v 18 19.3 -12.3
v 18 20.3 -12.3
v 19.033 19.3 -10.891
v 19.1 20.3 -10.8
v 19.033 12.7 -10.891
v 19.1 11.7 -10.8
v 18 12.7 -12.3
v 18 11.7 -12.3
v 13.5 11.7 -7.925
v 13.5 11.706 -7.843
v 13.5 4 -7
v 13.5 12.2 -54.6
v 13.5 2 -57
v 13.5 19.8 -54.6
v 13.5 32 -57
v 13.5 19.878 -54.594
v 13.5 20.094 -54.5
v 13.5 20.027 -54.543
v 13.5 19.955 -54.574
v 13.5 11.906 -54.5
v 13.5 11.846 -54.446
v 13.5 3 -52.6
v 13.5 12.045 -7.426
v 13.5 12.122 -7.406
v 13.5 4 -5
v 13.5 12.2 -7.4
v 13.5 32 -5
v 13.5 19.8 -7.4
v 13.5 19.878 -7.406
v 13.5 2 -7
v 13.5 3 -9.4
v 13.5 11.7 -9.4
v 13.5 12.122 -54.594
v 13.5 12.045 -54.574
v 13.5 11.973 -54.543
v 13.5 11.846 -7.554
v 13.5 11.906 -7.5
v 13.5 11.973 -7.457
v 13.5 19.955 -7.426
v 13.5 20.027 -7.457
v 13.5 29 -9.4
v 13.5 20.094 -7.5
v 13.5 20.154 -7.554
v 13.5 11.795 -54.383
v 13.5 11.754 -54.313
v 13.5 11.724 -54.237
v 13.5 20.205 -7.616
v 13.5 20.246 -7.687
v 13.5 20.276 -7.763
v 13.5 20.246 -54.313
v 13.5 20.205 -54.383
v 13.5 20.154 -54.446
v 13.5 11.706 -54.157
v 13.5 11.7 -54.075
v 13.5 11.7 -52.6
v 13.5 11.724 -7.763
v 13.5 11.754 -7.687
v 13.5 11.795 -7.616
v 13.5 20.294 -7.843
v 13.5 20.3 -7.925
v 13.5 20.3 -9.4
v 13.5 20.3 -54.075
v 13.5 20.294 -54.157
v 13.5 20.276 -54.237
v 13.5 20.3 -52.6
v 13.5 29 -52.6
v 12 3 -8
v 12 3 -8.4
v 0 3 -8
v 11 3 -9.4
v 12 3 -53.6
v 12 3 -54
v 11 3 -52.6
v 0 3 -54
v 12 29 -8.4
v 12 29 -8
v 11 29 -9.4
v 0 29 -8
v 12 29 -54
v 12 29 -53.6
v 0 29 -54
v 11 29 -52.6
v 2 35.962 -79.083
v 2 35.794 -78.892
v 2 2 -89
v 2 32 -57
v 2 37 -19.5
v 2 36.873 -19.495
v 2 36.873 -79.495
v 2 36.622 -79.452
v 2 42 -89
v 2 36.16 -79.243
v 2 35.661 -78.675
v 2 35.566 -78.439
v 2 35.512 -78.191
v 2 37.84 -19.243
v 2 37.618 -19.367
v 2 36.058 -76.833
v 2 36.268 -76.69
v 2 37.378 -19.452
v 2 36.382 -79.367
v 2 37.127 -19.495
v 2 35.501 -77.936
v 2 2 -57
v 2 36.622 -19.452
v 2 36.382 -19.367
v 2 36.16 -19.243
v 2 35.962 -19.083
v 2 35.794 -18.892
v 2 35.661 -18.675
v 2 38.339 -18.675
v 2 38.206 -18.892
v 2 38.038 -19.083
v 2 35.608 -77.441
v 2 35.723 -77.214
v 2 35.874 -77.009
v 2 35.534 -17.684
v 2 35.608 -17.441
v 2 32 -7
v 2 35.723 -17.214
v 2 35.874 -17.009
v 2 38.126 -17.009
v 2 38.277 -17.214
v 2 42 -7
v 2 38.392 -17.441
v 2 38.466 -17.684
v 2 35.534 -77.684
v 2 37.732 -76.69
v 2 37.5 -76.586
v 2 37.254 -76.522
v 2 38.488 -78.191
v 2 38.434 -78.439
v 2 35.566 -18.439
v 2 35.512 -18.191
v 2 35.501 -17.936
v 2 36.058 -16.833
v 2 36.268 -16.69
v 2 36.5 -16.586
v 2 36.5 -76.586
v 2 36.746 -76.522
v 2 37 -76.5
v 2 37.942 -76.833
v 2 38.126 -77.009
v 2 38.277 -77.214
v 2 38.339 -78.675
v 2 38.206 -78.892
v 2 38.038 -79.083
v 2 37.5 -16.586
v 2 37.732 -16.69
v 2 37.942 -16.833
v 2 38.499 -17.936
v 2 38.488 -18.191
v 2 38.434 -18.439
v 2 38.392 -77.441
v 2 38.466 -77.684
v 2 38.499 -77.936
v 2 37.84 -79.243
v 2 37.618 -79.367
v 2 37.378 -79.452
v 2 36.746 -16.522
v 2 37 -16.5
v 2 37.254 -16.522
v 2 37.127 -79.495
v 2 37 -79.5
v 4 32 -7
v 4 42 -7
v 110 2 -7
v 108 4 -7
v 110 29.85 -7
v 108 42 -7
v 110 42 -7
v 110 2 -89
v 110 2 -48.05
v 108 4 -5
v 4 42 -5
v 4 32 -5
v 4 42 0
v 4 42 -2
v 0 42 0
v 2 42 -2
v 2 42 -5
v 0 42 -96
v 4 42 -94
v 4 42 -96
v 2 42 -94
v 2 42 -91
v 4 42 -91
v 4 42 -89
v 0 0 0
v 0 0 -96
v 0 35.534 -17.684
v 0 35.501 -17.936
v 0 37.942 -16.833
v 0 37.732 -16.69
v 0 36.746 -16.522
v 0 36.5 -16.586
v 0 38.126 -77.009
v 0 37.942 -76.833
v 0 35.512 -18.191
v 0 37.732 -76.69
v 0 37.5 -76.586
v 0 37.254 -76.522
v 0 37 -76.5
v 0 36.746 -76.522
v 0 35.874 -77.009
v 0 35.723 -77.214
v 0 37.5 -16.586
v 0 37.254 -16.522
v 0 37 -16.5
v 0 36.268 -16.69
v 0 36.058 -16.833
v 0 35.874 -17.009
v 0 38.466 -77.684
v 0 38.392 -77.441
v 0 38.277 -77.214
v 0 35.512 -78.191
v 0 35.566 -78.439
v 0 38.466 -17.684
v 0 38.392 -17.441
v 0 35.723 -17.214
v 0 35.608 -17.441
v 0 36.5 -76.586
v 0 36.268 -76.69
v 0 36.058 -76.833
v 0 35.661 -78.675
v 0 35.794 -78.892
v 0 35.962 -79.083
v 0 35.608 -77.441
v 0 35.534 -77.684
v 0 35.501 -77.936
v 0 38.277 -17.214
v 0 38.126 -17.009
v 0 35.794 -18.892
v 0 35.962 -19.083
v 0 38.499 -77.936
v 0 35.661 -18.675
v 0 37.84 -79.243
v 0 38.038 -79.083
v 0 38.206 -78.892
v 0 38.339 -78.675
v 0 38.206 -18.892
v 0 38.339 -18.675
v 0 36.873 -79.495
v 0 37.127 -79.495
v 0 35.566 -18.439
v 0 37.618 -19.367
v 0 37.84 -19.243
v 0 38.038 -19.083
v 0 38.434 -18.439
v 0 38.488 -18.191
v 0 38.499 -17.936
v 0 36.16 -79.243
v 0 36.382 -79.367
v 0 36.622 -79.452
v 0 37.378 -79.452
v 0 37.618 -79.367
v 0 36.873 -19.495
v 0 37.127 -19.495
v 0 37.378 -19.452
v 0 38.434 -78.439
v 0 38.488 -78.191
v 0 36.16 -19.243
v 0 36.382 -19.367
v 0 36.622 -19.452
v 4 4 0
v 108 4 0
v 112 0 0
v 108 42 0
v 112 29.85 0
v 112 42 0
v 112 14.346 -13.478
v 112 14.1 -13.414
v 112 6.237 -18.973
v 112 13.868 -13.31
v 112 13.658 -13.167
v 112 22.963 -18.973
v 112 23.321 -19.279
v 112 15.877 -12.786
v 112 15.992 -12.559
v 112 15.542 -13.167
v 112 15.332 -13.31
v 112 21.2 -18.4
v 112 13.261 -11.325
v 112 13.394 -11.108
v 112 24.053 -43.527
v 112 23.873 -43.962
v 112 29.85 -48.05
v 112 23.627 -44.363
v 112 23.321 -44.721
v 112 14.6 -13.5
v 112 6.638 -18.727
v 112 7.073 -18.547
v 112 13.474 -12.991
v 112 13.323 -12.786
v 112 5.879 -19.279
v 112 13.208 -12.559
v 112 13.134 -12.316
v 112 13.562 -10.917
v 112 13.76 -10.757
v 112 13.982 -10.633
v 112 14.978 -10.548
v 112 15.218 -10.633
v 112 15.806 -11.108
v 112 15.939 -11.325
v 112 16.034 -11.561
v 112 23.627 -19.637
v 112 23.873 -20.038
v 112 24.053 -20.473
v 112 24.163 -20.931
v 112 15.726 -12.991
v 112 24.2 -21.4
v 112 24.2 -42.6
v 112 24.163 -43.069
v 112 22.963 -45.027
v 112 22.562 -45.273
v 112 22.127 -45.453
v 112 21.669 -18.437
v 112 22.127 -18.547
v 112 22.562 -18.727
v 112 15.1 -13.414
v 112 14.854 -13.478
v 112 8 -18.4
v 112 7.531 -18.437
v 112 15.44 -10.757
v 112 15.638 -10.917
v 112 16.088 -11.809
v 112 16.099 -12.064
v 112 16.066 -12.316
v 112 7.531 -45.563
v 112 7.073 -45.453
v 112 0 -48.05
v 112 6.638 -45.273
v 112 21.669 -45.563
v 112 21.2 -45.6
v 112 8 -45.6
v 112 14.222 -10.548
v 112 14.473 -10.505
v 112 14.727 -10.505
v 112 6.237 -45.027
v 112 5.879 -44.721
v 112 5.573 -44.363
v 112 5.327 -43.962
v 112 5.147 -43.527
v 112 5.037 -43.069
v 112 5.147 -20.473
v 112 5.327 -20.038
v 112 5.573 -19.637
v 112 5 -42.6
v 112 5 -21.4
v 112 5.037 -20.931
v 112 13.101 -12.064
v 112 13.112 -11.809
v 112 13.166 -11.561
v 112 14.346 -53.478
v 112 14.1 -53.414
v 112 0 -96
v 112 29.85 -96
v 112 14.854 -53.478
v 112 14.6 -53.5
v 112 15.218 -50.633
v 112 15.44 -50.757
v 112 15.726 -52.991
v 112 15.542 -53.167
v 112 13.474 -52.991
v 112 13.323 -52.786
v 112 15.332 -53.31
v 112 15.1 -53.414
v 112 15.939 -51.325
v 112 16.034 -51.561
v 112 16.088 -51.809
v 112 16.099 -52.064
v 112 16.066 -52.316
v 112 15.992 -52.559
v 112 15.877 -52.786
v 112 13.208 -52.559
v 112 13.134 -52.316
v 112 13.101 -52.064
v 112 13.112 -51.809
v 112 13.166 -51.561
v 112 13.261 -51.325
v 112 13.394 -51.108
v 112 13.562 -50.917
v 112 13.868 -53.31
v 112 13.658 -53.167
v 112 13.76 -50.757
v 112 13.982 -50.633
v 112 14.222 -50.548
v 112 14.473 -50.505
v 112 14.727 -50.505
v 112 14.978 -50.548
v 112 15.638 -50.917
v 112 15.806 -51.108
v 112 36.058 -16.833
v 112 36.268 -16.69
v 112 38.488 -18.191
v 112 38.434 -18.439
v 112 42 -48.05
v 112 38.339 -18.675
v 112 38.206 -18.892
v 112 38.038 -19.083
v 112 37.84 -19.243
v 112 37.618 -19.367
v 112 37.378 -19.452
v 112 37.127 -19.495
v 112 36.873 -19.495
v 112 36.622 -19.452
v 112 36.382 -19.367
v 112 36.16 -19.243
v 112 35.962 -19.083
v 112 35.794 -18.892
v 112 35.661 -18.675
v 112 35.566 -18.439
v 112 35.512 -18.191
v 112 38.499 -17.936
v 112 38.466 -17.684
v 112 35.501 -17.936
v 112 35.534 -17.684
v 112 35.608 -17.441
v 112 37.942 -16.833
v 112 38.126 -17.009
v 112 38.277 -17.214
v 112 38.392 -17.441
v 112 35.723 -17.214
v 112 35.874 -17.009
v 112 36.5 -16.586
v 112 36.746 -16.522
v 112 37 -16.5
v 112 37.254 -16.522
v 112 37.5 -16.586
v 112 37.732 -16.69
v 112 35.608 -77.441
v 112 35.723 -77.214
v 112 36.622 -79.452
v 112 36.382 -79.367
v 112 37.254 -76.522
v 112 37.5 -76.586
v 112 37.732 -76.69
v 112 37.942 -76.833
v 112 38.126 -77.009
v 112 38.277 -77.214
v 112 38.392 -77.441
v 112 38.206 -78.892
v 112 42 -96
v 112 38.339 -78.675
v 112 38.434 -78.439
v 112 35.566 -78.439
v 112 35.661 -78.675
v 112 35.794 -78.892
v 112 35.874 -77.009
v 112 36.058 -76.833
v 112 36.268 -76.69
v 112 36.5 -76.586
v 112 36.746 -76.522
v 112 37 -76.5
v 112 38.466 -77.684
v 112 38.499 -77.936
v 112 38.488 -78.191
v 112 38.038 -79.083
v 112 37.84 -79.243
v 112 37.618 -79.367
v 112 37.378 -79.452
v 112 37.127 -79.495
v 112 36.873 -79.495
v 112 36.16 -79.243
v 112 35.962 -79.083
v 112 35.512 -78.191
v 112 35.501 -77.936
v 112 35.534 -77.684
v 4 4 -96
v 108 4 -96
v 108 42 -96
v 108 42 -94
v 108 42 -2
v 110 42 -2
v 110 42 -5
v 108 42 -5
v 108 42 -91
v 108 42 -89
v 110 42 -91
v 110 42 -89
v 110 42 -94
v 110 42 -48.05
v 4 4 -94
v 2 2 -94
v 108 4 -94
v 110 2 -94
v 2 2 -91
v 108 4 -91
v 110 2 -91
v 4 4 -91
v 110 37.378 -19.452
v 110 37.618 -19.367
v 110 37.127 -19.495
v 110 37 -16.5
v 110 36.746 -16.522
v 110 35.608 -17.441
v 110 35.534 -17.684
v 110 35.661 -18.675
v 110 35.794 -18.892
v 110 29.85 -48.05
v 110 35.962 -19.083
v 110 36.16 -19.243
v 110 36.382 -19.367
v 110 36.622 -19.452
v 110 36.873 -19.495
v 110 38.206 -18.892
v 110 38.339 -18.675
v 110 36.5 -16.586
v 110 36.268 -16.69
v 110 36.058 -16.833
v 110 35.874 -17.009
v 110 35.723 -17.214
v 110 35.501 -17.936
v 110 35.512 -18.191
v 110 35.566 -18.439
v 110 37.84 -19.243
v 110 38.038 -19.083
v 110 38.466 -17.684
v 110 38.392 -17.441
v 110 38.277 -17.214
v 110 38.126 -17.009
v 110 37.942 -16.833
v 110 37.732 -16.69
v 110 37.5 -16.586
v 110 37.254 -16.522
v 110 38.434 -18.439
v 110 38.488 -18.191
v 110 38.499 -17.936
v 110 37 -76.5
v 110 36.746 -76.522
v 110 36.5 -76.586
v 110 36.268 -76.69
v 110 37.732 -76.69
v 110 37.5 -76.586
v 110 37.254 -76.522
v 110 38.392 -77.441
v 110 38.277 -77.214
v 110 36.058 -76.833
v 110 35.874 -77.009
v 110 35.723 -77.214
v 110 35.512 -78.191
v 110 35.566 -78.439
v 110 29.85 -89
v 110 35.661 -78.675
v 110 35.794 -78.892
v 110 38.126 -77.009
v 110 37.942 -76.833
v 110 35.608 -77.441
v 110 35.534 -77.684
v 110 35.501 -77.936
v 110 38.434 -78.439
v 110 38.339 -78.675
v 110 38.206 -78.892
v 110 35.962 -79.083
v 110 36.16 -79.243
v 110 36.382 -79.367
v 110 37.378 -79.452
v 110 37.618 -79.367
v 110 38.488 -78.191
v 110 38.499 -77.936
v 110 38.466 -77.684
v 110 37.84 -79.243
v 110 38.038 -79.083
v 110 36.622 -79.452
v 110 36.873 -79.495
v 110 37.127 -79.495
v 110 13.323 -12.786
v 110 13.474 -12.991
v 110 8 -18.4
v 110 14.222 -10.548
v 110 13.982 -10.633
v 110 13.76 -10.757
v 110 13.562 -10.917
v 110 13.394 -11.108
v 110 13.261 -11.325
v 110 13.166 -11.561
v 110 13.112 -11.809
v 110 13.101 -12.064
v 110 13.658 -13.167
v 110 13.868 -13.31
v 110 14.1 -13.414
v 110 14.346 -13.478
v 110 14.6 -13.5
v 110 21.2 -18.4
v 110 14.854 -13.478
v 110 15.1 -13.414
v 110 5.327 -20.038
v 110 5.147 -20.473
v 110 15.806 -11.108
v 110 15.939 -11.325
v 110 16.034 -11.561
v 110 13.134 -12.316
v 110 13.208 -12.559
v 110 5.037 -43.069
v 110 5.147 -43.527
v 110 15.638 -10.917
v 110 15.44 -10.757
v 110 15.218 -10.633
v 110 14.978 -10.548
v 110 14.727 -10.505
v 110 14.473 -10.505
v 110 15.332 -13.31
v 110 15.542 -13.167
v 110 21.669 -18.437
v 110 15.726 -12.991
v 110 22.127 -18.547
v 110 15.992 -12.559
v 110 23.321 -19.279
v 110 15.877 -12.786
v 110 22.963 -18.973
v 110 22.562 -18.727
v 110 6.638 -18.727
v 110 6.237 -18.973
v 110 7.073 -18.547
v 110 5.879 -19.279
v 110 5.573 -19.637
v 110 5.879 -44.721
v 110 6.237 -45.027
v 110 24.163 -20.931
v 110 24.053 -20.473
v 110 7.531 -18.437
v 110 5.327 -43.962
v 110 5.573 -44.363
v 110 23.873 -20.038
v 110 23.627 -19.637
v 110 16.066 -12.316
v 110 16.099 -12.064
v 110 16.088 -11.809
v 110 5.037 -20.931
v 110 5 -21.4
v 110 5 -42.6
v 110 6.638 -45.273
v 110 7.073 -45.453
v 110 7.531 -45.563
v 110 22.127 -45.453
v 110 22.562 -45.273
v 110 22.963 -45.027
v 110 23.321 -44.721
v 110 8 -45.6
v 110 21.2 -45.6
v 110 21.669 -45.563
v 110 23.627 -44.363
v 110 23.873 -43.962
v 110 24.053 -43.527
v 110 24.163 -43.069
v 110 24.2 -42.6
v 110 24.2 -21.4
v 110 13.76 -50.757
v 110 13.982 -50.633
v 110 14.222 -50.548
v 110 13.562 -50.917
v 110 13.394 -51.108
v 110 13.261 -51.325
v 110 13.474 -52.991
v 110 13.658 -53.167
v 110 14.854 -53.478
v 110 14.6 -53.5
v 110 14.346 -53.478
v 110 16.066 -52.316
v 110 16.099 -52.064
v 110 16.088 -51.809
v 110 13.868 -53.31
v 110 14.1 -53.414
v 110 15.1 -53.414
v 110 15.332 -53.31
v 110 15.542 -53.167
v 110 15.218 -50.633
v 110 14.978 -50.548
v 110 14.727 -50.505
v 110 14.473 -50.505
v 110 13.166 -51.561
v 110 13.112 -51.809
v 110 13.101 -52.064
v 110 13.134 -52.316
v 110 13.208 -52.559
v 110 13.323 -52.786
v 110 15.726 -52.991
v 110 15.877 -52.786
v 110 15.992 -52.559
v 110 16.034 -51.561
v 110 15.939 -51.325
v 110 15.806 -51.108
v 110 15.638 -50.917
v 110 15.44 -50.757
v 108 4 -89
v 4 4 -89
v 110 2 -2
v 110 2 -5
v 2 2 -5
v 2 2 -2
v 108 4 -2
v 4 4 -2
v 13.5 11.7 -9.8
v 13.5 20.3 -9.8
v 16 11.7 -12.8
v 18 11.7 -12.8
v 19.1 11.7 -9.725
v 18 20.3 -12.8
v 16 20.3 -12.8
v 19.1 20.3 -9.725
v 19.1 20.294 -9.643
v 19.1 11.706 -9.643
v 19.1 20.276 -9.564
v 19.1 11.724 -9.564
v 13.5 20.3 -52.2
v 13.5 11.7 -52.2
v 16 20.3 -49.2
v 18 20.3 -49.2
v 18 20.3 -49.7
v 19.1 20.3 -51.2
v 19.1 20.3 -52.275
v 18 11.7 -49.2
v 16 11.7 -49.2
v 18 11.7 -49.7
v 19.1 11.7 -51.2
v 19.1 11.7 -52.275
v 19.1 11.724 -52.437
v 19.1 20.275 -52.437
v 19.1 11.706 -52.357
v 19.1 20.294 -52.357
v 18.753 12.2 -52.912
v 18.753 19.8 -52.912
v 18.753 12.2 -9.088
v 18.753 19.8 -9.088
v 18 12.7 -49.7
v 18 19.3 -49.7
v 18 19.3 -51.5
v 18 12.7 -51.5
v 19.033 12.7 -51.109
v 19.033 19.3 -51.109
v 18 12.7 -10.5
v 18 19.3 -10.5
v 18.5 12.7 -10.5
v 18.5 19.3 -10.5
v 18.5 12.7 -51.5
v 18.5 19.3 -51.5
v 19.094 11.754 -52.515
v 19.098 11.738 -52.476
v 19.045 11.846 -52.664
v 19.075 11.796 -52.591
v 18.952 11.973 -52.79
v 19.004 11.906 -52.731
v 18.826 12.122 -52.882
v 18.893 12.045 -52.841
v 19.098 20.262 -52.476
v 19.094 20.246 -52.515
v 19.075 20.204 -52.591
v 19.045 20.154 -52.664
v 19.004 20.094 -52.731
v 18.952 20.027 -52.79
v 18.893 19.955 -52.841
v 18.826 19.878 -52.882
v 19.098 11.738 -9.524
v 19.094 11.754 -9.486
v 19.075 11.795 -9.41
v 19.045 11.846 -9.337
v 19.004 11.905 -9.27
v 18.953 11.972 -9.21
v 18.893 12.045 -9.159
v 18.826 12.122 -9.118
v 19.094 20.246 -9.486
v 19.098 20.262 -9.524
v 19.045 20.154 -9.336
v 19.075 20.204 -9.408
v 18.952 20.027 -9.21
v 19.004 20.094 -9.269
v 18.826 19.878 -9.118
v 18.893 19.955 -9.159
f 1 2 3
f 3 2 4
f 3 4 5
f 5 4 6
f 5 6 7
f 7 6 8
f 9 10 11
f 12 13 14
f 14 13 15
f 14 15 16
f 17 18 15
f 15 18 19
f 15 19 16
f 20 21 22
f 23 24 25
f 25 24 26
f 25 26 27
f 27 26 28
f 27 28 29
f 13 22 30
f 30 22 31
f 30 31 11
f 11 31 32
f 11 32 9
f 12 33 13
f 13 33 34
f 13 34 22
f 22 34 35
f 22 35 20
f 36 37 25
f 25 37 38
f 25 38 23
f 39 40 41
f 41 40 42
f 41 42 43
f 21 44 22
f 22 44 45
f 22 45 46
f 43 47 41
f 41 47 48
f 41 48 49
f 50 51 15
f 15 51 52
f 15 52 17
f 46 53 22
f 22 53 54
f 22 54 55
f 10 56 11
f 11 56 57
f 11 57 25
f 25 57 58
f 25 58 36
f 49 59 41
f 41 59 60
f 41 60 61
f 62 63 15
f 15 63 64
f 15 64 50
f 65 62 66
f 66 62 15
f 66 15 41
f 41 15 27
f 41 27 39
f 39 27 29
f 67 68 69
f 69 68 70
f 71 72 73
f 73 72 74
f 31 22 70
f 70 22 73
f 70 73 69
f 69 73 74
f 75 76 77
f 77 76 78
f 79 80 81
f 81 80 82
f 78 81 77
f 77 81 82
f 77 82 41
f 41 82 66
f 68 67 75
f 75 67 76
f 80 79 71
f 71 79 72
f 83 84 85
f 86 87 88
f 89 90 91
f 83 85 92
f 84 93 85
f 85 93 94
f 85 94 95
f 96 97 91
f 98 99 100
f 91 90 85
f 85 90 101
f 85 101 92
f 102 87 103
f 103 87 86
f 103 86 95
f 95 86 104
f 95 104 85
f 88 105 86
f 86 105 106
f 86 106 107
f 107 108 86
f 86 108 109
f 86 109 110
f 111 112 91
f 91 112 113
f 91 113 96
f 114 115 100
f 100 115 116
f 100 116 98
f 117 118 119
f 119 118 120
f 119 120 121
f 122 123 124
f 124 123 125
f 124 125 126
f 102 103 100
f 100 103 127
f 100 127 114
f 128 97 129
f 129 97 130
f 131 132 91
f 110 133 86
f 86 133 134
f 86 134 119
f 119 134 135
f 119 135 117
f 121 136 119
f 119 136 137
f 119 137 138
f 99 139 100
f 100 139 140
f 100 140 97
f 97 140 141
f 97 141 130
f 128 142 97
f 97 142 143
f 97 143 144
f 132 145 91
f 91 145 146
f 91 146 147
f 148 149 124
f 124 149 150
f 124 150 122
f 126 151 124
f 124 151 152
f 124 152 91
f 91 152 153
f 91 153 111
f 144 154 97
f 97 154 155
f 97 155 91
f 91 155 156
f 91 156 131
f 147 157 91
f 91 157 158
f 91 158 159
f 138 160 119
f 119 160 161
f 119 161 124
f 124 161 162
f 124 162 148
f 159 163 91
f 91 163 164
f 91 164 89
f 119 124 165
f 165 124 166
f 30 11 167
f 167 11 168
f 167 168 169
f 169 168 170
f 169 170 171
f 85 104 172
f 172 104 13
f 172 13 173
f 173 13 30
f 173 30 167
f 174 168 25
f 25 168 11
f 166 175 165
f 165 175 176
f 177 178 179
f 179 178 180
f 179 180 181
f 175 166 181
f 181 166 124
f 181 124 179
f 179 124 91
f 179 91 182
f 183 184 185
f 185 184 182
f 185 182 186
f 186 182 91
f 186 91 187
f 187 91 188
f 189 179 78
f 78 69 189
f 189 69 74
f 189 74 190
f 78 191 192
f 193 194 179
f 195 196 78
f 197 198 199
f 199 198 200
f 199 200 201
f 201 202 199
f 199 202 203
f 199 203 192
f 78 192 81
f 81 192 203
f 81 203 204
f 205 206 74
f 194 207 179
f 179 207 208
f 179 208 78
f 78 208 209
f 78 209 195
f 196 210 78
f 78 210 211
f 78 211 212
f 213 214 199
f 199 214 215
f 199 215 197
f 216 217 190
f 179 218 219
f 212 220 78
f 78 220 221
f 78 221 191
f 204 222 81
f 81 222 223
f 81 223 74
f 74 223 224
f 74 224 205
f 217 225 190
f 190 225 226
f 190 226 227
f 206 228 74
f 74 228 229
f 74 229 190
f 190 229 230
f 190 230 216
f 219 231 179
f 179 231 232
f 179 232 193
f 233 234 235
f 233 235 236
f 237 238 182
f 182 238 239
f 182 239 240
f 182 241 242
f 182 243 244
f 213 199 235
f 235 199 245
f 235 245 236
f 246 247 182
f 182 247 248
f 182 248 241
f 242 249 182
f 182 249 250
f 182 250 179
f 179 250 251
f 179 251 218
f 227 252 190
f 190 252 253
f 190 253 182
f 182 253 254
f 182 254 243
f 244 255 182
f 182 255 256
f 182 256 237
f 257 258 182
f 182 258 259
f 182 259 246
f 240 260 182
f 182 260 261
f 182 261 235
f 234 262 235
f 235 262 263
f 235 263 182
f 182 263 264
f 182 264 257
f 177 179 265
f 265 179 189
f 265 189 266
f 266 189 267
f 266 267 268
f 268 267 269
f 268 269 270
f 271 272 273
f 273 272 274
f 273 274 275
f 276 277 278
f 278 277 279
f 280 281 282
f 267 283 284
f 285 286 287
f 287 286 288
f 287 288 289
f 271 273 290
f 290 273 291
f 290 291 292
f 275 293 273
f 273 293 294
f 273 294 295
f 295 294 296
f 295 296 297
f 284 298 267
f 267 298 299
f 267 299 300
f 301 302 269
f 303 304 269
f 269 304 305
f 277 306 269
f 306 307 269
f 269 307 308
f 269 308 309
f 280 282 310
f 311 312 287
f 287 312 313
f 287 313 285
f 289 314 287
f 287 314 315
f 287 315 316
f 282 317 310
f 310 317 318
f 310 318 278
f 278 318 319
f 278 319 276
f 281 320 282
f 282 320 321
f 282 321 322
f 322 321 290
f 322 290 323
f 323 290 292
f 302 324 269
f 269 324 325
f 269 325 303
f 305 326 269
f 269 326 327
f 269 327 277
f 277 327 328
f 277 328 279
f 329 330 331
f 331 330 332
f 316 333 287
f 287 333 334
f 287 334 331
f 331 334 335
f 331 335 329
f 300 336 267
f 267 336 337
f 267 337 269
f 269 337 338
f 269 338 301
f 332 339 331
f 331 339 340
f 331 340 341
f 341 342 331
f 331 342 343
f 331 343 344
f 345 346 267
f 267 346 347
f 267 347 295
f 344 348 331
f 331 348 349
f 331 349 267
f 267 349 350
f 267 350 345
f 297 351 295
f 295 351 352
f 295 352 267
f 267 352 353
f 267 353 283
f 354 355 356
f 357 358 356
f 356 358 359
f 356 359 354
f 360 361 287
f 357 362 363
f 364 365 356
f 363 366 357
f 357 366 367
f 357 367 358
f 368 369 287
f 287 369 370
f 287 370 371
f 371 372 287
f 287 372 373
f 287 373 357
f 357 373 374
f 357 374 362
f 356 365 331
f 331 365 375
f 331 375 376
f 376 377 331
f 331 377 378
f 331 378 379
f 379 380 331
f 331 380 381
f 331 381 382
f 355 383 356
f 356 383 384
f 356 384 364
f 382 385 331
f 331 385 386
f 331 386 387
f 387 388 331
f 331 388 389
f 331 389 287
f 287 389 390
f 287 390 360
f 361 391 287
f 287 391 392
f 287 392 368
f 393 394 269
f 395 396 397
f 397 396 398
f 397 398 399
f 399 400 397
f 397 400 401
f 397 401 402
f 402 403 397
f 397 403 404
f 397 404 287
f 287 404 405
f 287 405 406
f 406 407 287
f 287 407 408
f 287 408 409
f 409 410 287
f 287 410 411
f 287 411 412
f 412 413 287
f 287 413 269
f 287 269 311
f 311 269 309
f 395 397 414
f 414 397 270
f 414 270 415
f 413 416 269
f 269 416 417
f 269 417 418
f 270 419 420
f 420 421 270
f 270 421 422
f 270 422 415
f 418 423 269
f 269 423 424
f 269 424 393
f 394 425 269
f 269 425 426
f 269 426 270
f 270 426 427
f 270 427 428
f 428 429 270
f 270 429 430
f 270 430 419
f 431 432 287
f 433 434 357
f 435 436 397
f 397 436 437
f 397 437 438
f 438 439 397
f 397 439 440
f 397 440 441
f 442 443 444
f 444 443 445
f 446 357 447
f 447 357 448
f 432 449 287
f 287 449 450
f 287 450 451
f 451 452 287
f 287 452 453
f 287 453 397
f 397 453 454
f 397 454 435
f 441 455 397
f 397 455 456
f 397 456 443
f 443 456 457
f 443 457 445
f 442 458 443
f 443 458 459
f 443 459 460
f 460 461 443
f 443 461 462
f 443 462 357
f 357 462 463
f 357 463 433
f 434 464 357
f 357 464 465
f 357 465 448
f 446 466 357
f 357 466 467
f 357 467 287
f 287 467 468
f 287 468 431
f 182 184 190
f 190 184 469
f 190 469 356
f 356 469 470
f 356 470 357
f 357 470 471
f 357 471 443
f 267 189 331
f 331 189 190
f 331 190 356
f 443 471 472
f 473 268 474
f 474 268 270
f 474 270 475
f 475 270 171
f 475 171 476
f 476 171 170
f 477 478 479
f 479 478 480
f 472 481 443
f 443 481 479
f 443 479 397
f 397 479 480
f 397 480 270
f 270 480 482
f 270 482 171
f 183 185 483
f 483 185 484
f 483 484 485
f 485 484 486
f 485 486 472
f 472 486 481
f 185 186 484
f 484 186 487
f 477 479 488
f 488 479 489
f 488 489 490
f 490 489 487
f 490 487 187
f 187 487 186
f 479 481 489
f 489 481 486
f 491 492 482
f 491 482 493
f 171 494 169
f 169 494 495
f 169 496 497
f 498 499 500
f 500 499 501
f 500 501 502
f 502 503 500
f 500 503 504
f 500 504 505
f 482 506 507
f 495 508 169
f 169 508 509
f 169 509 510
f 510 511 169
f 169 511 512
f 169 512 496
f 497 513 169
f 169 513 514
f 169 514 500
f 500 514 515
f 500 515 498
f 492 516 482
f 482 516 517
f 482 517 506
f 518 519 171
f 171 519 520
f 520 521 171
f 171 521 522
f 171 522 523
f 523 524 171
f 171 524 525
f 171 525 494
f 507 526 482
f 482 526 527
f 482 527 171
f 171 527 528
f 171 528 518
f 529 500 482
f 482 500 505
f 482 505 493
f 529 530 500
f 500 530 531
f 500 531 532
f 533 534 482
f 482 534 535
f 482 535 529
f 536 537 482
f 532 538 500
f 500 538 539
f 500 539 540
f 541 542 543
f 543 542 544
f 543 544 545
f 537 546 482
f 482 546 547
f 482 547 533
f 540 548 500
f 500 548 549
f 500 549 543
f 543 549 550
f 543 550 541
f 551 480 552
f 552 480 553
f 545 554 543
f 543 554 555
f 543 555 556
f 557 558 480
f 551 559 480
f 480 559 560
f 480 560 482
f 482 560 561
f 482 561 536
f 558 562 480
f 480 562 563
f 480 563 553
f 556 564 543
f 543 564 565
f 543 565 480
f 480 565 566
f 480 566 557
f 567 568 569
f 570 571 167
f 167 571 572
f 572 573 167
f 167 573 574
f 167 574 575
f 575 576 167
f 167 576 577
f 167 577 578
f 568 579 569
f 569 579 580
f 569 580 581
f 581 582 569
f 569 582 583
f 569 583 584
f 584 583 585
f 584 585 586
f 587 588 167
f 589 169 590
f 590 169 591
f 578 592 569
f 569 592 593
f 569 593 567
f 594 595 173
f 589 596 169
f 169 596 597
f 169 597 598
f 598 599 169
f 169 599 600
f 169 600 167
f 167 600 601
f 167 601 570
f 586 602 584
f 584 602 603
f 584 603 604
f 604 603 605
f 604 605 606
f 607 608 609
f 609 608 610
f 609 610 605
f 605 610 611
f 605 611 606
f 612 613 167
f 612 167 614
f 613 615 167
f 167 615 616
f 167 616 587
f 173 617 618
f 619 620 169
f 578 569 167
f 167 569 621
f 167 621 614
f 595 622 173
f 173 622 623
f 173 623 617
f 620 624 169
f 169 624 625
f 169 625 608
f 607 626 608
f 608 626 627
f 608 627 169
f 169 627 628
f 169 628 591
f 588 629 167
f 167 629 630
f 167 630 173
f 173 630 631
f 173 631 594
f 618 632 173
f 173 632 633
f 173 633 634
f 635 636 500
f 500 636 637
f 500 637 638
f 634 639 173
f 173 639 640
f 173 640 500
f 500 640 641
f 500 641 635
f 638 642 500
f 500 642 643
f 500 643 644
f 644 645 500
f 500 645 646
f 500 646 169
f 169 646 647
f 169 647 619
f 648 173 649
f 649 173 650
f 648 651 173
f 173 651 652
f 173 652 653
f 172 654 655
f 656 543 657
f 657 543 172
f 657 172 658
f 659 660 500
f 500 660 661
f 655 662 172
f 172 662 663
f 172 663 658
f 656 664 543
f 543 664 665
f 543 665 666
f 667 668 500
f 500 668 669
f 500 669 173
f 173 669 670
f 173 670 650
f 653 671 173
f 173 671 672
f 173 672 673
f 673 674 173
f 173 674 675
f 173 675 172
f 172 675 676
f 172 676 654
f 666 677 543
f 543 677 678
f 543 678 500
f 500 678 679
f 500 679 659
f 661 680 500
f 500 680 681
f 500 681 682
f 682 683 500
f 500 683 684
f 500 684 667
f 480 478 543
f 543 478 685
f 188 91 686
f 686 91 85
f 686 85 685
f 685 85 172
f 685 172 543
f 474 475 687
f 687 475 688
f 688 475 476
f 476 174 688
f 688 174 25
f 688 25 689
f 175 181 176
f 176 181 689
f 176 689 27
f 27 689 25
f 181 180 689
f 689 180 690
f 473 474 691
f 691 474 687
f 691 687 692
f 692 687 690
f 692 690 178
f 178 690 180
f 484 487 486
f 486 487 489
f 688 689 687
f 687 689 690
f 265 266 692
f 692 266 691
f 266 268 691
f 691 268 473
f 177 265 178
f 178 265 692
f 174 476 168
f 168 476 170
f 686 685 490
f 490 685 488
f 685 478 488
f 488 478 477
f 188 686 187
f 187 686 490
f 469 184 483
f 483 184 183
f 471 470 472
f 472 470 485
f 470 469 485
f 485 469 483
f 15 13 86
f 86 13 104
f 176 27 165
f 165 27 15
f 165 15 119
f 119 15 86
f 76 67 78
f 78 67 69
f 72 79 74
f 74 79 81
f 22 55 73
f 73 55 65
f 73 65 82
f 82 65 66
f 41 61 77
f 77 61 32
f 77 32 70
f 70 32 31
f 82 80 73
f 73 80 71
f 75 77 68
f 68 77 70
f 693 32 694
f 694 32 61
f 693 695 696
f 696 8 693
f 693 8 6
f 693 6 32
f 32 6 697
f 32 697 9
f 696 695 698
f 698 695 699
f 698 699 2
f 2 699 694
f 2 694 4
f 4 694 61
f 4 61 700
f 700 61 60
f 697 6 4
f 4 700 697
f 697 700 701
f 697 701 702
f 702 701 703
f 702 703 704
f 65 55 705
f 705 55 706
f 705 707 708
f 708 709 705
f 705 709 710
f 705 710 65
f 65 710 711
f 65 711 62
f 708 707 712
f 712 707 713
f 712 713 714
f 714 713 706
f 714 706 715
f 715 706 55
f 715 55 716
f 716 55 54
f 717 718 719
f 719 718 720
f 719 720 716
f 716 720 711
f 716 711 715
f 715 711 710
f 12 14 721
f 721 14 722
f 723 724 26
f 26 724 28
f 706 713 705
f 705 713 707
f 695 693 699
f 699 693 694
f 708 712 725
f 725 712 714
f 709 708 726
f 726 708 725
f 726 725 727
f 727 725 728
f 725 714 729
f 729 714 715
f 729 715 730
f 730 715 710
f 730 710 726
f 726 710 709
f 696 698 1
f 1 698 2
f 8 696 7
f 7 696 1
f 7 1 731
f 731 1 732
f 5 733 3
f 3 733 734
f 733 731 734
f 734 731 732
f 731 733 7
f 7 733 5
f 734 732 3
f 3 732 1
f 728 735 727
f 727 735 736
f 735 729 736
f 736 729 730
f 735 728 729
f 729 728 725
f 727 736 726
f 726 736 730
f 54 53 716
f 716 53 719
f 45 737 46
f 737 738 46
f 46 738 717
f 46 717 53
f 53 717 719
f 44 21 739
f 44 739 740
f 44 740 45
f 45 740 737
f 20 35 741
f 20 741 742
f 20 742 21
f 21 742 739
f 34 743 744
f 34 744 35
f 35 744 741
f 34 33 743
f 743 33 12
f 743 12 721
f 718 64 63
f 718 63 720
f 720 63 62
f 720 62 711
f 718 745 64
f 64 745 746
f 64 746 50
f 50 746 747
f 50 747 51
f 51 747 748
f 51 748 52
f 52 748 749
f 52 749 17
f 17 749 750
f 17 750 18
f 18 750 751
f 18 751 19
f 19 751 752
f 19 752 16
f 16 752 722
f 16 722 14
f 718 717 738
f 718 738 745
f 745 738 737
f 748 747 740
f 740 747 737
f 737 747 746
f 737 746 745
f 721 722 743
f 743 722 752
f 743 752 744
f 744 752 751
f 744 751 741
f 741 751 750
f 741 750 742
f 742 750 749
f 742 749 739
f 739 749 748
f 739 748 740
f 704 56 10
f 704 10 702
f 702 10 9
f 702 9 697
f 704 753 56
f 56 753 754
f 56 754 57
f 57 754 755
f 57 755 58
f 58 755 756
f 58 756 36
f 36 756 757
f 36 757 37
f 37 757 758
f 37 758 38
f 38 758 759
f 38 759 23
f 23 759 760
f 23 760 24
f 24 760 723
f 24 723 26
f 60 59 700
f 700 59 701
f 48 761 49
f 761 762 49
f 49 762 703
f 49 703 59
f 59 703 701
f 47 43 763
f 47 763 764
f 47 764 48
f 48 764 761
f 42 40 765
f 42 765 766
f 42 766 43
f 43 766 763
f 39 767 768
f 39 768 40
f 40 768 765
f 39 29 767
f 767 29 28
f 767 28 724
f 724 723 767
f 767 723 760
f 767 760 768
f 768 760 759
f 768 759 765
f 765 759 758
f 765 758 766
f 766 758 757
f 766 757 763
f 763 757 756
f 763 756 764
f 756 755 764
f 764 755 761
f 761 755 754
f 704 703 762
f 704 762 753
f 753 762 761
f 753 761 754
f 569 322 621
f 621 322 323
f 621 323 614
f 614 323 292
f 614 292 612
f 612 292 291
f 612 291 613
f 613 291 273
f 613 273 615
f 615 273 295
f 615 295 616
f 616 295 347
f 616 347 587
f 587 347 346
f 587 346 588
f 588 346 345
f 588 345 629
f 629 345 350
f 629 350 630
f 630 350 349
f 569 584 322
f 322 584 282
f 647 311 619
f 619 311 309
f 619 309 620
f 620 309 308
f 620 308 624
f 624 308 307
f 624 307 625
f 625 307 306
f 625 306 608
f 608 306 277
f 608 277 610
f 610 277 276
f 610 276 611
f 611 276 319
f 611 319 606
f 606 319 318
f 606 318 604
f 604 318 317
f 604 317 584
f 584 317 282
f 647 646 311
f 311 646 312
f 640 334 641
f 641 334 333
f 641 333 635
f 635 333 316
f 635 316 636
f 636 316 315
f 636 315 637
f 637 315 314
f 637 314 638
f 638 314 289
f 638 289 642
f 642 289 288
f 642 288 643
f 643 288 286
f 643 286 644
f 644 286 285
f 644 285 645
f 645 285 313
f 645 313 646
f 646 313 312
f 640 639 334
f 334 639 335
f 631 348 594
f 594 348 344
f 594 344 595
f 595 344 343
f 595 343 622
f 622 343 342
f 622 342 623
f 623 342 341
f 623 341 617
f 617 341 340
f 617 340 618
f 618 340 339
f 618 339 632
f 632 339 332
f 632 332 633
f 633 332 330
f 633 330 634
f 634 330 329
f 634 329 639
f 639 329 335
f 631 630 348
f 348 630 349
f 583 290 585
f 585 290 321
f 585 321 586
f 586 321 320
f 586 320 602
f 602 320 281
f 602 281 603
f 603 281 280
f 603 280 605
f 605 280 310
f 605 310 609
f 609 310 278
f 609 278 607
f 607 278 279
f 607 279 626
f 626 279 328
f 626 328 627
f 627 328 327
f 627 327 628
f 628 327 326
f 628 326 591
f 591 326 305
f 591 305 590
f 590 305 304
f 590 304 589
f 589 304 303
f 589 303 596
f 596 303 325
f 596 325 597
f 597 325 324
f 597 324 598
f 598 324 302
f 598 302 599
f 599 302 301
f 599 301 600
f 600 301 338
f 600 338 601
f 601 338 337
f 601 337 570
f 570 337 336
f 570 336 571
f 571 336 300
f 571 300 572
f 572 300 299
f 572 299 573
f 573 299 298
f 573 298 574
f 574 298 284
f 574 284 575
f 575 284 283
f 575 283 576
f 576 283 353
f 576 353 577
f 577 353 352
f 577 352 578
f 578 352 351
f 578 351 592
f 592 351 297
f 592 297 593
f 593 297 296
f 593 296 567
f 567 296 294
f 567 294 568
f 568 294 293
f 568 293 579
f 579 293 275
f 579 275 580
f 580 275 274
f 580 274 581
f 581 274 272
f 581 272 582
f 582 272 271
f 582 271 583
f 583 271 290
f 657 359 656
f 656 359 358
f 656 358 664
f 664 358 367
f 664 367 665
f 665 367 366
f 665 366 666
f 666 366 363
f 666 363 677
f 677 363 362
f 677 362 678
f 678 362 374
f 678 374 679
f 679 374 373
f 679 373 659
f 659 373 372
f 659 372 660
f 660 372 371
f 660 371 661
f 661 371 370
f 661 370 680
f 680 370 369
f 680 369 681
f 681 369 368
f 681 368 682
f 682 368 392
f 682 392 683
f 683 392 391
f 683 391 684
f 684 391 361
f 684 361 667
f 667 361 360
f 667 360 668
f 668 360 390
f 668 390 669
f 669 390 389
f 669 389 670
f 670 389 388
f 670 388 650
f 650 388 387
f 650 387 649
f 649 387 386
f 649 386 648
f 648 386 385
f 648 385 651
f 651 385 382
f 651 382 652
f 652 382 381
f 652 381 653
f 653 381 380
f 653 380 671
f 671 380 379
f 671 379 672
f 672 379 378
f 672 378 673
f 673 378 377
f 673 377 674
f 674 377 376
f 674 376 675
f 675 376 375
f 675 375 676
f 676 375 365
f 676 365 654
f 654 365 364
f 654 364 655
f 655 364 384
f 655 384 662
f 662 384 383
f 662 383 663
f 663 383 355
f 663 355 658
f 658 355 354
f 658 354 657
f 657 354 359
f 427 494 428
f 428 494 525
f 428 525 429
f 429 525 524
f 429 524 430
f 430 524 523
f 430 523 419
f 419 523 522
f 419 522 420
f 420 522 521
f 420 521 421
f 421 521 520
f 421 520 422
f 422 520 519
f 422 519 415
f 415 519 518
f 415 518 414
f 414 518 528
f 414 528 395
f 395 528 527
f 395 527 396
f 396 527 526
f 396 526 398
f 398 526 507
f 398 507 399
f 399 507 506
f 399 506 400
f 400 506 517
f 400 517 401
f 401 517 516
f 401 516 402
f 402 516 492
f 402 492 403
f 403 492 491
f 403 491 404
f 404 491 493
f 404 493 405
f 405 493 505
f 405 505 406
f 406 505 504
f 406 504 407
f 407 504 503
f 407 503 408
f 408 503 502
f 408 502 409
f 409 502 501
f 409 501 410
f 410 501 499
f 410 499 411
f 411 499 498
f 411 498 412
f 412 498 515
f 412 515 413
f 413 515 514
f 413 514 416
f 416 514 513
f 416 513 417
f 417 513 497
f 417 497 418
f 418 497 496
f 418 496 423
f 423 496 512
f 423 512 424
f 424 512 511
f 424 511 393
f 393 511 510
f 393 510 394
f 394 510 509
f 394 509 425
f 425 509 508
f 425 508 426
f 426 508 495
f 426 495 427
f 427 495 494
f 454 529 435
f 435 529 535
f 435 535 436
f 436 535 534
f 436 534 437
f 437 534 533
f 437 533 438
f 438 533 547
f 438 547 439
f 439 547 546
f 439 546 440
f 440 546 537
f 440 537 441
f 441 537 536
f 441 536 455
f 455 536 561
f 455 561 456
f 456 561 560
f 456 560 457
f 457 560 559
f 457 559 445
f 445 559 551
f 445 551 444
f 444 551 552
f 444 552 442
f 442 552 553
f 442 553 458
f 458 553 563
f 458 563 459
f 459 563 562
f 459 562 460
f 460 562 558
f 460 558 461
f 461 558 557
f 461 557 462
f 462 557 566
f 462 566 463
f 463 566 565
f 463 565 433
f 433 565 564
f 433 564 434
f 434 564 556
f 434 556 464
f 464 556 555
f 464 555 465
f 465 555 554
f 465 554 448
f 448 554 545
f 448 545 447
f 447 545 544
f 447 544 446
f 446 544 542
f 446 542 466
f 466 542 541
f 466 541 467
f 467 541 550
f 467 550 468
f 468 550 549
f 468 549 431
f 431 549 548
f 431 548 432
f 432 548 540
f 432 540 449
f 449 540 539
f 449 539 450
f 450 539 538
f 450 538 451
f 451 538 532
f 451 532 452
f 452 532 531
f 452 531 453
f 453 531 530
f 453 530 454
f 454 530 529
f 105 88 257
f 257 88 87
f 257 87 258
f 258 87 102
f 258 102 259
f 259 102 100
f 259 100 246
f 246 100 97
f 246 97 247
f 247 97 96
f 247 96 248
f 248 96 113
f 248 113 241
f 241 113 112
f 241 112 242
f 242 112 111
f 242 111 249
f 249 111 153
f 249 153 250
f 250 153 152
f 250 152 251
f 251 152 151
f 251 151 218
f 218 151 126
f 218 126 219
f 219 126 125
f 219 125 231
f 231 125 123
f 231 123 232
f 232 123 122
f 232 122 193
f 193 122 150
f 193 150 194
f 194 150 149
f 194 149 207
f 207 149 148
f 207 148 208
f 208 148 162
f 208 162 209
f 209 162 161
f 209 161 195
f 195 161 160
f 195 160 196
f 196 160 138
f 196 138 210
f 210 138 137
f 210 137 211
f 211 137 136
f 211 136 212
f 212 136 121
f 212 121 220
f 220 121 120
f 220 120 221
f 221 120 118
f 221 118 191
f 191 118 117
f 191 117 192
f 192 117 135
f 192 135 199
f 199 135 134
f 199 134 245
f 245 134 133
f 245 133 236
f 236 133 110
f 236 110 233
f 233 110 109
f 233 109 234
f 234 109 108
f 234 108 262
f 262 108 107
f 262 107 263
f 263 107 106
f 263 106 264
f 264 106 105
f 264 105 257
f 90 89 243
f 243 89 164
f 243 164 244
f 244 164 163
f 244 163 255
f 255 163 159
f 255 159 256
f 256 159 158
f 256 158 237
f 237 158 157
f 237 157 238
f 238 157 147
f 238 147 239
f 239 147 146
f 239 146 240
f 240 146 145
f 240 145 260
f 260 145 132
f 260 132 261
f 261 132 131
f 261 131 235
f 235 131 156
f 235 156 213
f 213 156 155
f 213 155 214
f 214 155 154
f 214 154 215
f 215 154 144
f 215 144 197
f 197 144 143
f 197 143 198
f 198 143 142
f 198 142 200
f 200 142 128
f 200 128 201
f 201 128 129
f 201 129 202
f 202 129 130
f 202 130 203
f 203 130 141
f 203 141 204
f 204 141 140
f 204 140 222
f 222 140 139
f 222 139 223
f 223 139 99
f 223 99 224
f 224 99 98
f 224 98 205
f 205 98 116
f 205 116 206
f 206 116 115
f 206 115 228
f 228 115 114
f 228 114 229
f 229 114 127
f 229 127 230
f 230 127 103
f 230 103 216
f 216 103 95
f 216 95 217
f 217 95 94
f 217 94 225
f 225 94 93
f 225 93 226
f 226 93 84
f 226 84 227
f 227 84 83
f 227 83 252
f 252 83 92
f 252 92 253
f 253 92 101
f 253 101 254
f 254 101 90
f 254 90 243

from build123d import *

# Parameters (mm, degrees)
ESBO_O1_W                = 112
ESBO_O1_H                = 96
RESSALTO_EXTRUS_O1_DEPTH = 2
ESBO_O2_W                = 108
ESBO_O2_H                = 3
ESBO_O2_H_2              = 82
RESSALTO_EXTRUS_O2_DEPTH = 40
ESBO_O3_W                = 104
ESBO_O3_H                = 38
CORTE_EXTRUS_O1_DEPTH    = 154.37535656
ESBO_O4_W                = 52
ESBO_O4_H                = 30
RESSALTO_EXTRUS_O3_DEPTH = 11.5
ESBO_O5_W                = 46
ESBO_O5_H                = 26
CORTE_EXTRUS_O2_DEPTH    = 12
ESBO_O6_W                = 43.2
ESBO_O6_H                = 26
CORTE_EXTRUS_O3_DEPTH    = 1.5
RESSALTO_EXTRUS_O4_DEPTH = 26
ESBO_O8_W                = 5.4
ESBO_O8_H                = 8.6
RESSALTO_EXTRUS_O5_DEPTH = 5.6
CORTE_EXTRUS_O4_DEPTH    = 8.6
CORTE_EXTRUS_O5_DEPTH    = 8.6
CORTE_EXTRUS_O6_DEPTH    = 8.6
CORTE_EXTRUS_O7_DEPTH    = 6.6
FILETE1_R                = 0.5
FILETE2_R                = 0.5
CORTE_EXTRUS_O8_DEPTH    = 2
ESBO_O16_R               = 1.5
CORTE_EXTRUS_O9_DEPTH    = 2
ESBO_O17_R               = 1.5
CORTE_EXTRUS_O10_DEPTH   = 154.37535656


with BuildPart() as part:
    # Esboço1 → Ressalto-extrusão1 (new body)
    with BuildSketch(Plane(origin=(0, 0, 0), x_dir=(1, 0, 0), z_dir=(0, 1, 0))):
        with Locations((56, 48)):
            Rectangle(ESBO_O1_W, ESBO_O1_H)
    extrude(amount=RESSALTO_EXTRUS_O1_DEPTH)

    # Esboço2 → Ressalto-extrusão2 (add)
    with BuildSketch(Plane(origin=(0, 2, 0), x_dir=(1, 0, 0), z_dir=(0, 1, 0))):
        Polygon((0, 96), (2, 96), (110, 96), (112, 96), (112, 0), (110, 0), (2, 0), (0, 0), align=None)
        with Locations((56, 92.5)):
            Rectangle(ESBO_O2_W, ESBO_O2_H, mode=Mode.SUBTRACT)
        with Locations((56, 3.5)):
            Rectangle(ESBO_O2_W, ESBO_O2_H, mode=Mode.SUBTRACT)
        with Locations((56, 48)):
            Rectangle(ESBO_O2_W, ESBO_O2_H_2, mode=Mode.SUBTRACT)
    extrude(amount=RESSALTO_EXTRUS_O2_DEPTH)

    # Esboço3 → Corte-extrusão1 (cut, through all)
    with BuildSketch(Plane.XY):
        with Locations((56, 23)):
            Rectangle(ESBO_O3_W, ESBO_O3_H)
    extrude(amount=-CORTE_EXTRUS_O1_DEPTH, mode=Mode.SUBTRACT)

    # Esboço4 → Ressalto-extrusão3 (add)
    with BuildSketch(Plane(origin=(2, 0, 0), x_dir=(0, 0, -1), z_dir=(1, 0, 0))):
        with Locations((31, 17)):
            Rectangle(ESBO_O4_W, ESBO_O4_H)
    extrude(amount=RESSALTO_EXTRUS_O3_DEPTH)

    # Esboço5 → Corte-extrusão2 (cut)
    with BuildSketch(Plane.ZY):
        with Locations((-31, 16)):
            Rectangle(ESBO_O5_W, ESBO_O5_H)
    extrude(amount=-CORTE_EXTRUS_O2_DEPTH, mode=Mode.SUBTRACT)

    # Esboço6 → Corte-extrusão3 (cut)
    with BuildSketch(Plane.ZY.offset(-12)):
        with Locations((-31, 16)):
            Rectangle(ESBO_O6_W, ESBO_O6_H)
    extrude(amount=-CORTE_EXTRUS_O3_DEPTH, mode=Mode.SUBTRACT)

    # Esboço7 → Ressalto-extrusão4 (add)
    with BuildSketch(Plane(origin=(0, 3, 0), x_dir=(1, 0, 0), z_dir=(0, 1, 0))):
        Polygon((12, 52.6), (12, 53.6), (11, 52.6), align=None)
        Polygon((12, 9.4), (12, 8.4), (11, 9.4), align=None)
    extrude(amount=RESSALTO_EXTRUS_O4_DEPTH)

    # Esboço8 → Ressalto-extrusão5 (add)
    with BuildSketch(Plane(origin=(13.5, 0, 0), x_dir=(0, 0, -1), z_dir=(1, 0, 0))):
        with Locations((10.1, 16)):
            Rectangle(ESBO_O8_W, ESBO_O8_H)
        with Locations((51.9, 16)):
            Rectangle(ESBO_O8_W, ESBO_O8_H)
    extrude(amount=RESSALTO_EXTRUS_O5_DEPTH)

    # Esboço9 → Corte-extrusão4 (cut)
    with BuildSketch(Plane(origin=(0, 20.3, 0), x_dir=(1, 0, 0), z_dir=(0, 1, 0))):
        Polygon((13.5, 54.6), (19.1, 52.8), (19.1, 54.6), align=None)
        Polygon((13.5, 7.4), (19.1, 7.4), (19.1, 9.2), align=None)
    extrude(amount=-CORTE_EXTRUS_O4_DEPTH, mode=Mode.SUBTRACT)

    # Esboço10 → Corte-extrusão5 (cut)
    with BuildSketch(Plane(origin=(0, 20.3, 0), x_dir=(1, 0, 0), z_dir=(0, 1, 0))):
        Polygon((13.5, 12.8), (16, 12.8), (13.5, 9.8), align=None)
        Polygon((13.5, 49.2), (16, 49.2), (13.5, 52.2), align=None)
    extrude(amount=-CORTE_EXTRUS_O5_DEPTH, mode=Mode.SUBTRACT)

    # Esboço11 → Corte-extrusão6 (cut)
    with BuildSketch(Plane(origin=(0, 20.3, 0), x_dir=(1, 0, 0), z_dir=(0, 1, 0))):
        Polygon((19.1, 49.2), (18, 49.2), (18, 49.7), (19.1, 51.2), align=None)
        Polygon((19.1, 12.8), (18, 12.8), (18, 12.3), (19.1, 10.8), align=None)
    extrude(amount=-CORTE_EXTRUS_O6_DEPTH, mode=Mode.SUBTRACT)

    # Esboço14 → Corte-extrusão7 (cut)
    with BuildSketch(Plane(origin=(0, 19.3, 0), x_dir=(1, 0, 0), z_dir=(0, 1, 0))):
        Polygon((18, 12.3), (18, 10.5), (18.5, 10.5), (19.033236994, 10.891040462), align=None)
        Polygon((18, 49.7), (18, 51.5), (18.5, 51.5), (19.033236994, 51.108959538), align=None)
    extrude(amount=-CORTE_EXTRUS_O7_DEPTH, mode=Mode.SUBTRACT)

    # Filete1
    filete1_edges = [part.edges().sort_by_distance(p)[0] for p in [
        (16.3, 11.7, -53.7),
        (19.1, 16, -52.8),
        (16.3, 20.3, -53.7),
    ]]
    fillet(filete1_edges, radius=FILETE1_R)

    # Filete2
    filete2_edges = [part.edges().sort_by_distance(p)[0] for p in [
        (16.3, 11.7, -8.3),
        (19.1, 16, -9.2),
        (16.3, 20.3, -8.3),
    ]]
    fillet(filete2_edges, radius=FILETE2_R)

    # Esboço15 → Corte-extrusão8 (cut)
    with BuildSketch(Plane(origin=(112, 0, 0), x_dir=(0, 0, -1), z_dir=(1, 0, 0))):
        with BuildLine():
            Line((21.4, 5), (42.6, 5))
            ThreePointArc((42.6, 5), (44.721320344, 5.878679656), (45.6, 8))
            Line((45.6, 8), (45.6, 21.2))
            ThreePointArc((45.6, 21.2), (44.721320344, 23.321320344), (42.6, 24.2))
            Line((42.6, 24.2), (21.4, 24.2))
            ThreePointArc((21.4, 24.2), (19.278679656, 23.321320344), (18.4, 21.2))
            Line((18.4, 21.2), (18.4, 8))
            ThreePointArc((18.4, 8), (19.278679656, 5.878679656), (21.4, 5))
        make_face()
    extrude(amount=-CORTE_EXTRUS_O8_DEPTH, mode=Mode.SUBTRACT)

    # Esboço16 → Corte-extrusão9 (cut)
    with BuildSketch(Plane(origin=(112, 0, 0), x_dir=(0, 0, -1), z_dir=(1, 0, 0))):
        with Locations((52, 14.6)):
            Circle(ESBO_O16_R)
        with Locations((12, 14.6)):
            Circle(ESBO_O16_R)
    extrude(amount=-CORTE_EXTRUS_O9_DEPTH, mode=Mode.SUBTRACT)

    # Esboço17 → Corte-extrusão10 (cut, through all)
    with BuildSketch(Plane.ZY):
        with Locations((-78, 37)):
            Circle(ESBO_O17_R)
        with Locations((-18, 37)):
            Circle(ESBO_O17_R)
    extrude(amount=-CORTE_EXTRUS_O10_DEPTH, mode=Mode.SUBTRACT)


solid = part.part
